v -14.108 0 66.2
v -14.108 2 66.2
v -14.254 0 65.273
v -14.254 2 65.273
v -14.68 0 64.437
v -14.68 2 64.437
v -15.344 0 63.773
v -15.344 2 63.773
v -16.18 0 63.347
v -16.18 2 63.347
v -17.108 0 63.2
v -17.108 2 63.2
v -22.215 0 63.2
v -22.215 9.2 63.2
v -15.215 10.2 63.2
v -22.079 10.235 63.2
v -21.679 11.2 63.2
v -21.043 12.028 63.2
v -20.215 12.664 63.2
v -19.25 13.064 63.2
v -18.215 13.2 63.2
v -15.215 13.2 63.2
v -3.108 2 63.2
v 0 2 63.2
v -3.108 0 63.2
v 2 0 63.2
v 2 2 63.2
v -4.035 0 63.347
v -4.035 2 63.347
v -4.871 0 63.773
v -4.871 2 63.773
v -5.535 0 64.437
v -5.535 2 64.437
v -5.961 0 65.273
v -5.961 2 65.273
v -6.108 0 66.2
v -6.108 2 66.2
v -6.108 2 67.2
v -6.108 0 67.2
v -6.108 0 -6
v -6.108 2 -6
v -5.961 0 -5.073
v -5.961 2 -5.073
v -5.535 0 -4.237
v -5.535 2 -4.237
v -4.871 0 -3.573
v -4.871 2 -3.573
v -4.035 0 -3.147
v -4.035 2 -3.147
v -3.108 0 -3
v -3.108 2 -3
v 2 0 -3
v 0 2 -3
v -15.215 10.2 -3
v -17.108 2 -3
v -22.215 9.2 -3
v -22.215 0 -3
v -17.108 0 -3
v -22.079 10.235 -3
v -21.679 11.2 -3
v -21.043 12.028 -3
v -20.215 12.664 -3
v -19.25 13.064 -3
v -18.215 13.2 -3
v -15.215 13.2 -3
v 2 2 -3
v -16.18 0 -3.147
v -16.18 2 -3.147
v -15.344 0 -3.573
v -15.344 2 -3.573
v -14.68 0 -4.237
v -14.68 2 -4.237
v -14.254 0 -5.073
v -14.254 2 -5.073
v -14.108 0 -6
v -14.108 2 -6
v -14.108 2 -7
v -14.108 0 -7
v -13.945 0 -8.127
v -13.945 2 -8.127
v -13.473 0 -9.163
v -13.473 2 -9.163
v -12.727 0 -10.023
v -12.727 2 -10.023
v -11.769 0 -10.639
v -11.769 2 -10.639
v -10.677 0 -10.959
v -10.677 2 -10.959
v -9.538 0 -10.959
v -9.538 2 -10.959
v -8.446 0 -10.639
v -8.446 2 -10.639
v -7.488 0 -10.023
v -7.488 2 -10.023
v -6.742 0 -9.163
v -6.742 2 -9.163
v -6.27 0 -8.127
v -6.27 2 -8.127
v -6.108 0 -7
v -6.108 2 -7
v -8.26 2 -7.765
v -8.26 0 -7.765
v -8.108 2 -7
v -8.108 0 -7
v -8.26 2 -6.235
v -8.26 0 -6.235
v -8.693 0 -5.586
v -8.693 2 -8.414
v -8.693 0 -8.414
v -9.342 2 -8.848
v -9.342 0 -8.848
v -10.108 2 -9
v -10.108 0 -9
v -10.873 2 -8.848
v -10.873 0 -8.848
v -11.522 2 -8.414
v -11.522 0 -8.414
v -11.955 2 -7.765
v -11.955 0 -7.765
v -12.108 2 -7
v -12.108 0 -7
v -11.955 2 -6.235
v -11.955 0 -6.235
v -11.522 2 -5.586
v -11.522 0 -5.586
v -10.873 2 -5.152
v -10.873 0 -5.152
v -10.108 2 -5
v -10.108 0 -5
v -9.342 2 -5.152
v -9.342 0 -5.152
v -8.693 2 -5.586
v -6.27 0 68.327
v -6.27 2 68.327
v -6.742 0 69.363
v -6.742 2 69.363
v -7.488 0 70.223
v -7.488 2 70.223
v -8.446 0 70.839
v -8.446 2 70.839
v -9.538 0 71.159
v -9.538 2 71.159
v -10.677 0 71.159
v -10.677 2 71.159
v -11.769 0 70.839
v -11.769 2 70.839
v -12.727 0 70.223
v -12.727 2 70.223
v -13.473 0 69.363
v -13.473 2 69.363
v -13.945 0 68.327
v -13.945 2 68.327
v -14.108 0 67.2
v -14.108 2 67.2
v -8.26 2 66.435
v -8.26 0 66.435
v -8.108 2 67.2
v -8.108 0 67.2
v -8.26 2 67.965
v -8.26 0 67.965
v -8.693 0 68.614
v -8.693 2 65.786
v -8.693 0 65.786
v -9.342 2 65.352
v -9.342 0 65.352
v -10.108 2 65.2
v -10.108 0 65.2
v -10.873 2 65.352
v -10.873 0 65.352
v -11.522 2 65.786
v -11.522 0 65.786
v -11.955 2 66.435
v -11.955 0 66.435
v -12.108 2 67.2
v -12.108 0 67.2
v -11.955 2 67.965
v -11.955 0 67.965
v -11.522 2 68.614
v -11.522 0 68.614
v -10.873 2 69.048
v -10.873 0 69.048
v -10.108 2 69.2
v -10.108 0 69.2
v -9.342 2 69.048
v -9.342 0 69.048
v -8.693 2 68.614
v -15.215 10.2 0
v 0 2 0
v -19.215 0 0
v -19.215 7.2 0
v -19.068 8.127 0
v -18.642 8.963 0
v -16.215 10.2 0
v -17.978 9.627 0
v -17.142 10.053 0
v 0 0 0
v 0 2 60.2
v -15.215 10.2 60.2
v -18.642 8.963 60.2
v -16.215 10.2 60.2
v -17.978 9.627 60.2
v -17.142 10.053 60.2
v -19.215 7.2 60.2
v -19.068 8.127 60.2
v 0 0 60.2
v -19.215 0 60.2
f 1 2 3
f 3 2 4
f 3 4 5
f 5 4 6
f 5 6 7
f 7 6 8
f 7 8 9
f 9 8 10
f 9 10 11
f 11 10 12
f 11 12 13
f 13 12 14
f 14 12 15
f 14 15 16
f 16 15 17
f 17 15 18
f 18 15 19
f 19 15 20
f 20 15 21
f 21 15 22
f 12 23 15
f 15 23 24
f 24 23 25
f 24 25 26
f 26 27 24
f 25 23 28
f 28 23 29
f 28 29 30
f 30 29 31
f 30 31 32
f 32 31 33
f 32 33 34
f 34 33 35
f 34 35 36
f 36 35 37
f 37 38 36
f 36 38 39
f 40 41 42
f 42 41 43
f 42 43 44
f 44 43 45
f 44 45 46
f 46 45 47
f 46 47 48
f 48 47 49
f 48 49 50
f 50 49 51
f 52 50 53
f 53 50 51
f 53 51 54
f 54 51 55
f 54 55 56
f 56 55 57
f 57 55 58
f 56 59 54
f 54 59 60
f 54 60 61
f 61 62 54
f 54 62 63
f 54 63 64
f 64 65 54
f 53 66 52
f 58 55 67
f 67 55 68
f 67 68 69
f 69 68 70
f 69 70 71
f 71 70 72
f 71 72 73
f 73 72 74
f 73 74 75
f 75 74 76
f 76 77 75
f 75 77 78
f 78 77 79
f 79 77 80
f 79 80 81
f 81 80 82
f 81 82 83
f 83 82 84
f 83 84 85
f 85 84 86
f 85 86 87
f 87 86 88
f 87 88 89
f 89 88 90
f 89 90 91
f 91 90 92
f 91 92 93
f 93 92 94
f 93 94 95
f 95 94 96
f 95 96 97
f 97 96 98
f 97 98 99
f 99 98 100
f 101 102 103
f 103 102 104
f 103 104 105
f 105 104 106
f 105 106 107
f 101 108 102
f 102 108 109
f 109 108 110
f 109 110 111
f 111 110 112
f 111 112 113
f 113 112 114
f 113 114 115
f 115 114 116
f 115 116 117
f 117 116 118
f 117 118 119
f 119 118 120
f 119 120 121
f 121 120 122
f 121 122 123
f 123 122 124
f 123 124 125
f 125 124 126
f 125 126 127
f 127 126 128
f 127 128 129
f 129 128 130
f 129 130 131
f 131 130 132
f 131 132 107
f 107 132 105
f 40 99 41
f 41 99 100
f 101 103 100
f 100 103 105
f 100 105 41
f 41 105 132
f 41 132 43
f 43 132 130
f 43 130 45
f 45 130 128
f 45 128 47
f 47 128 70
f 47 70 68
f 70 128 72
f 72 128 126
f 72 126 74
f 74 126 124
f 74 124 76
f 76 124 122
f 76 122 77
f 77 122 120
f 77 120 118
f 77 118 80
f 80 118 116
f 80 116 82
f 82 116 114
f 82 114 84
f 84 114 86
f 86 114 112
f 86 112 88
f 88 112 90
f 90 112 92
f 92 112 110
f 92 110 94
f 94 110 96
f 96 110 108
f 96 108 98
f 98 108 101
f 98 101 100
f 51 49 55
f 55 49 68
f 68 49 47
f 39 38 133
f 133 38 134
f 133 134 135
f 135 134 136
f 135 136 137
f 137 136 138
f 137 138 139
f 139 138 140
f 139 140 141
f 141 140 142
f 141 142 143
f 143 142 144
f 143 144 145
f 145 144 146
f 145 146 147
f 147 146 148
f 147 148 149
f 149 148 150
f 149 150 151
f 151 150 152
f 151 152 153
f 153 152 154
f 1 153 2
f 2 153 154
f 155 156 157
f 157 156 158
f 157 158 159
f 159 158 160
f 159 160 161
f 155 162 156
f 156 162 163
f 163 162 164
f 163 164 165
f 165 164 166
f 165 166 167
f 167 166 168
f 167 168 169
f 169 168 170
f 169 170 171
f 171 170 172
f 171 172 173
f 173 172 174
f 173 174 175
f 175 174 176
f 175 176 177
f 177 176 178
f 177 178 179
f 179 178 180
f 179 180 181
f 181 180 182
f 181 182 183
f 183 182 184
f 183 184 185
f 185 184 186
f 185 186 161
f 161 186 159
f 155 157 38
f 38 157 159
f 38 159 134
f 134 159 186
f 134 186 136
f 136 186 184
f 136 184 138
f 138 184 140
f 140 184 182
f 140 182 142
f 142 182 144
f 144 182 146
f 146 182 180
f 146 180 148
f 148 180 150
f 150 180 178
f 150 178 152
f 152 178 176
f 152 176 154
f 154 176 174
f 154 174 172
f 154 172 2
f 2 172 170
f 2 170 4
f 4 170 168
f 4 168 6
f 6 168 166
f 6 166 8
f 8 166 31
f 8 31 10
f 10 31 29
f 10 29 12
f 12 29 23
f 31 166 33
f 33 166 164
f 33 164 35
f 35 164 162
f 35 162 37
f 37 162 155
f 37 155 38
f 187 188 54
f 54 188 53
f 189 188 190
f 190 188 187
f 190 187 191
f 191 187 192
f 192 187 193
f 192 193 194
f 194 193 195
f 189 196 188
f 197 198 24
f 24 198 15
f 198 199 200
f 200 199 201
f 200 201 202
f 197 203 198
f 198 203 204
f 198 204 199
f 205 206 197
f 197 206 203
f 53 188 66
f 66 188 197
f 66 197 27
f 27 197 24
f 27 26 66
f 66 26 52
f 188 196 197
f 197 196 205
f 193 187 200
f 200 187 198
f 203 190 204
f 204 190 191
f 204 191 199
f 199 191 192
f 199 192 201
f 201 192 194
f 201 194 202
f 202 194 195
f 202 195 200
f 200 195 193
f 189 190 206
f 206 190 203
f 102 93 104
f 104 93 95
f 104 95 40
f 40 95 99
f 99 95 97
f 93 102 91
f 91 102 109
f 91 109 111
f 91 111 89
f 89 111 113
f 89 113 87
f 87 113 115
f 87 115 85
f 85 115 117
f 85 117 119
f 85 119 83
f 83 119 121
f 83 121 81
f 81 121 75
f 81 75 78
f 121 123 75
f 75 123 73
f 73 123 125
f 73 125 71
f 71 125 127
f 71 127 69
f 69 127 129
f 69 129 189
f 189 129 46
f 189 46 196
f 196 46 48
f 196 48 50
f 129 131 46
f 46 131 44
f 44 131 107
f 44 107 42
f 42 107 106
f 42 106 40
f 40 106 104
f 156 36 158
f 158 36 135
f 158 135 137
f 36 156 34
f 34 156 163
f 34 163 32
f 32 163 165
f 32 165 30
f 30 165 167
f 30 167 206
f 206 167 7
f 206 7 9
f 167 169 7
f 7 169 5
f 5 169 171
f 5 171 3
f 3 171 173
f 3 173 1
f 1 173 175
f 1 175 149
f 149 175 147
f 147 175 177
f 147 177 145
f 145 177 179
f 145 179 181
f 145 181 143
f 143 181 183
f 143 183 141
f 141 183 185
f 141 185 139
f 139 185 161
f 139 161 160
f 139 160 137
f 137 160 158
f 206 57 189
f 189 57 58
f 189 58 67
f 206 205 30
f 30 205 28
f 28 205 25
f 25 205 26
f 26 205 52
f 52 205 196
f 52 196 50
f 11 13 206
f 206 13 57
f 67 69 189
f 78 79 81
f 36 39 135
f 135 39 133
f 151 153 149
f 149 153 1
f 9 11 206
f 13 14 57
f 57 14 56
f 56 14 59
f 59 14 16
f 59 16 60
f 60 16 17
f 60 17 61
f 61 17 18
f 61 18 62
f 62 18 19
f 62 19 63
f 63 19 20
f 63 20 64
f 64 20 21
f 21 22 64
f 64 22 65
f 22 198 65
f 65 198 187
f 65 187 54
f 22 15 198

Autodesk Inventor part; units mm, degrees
ref_plane "YZ Plane" through (0, 0, 0) normal (1, 0, 0) x (0, 1, 0)
ref_plane "XZ Plane" through (0, 0, 0) normal (0, 1, 0) x (-1, 0, 0)
sketch "Sketch1" plane through (0, 0, 0) normal (0, 0, 1) x (1, 0, 0)
  line L0 (0, 0) -> (-19.215, 0)
  line L1 (-19.215, 0) -> (-19.215, 7.2)
  line L2 (-16.215, 10.2) -> (-15.215, 10.2)
  line L3 (0, 10.2) -> (0, 2)
  arc A0 (-16.215, 10.2) -> (-19.215, 7.2) centre (-16.215, 7.2) ccw
  line L4 (-15.215, 10.2) -> (-15.215, 2)
  line L5 (-15.215, 2) -> (0, 2)
  line L6 (-15.215, 10.2) -> (0, 10.2)
  line L7 (0, 2) -> (0, 0)
  line L8 (-15.215, 10.2) -> (-15.215, 13.2)
  line L9 (-22.215, 0) -> (-22.215, 9.2)
  line L10 (-18.215, 13.2) -> (-15.215, 13.2)
  arc A1 (-18.215, 13.2) -> (-22.215, 9.2) centre (-18.215, 9.2) ccw
  line L11 (-22.215, 0) -> (-19.215, 0)
  line L12 (0, 0) -> (2, 0)
  line L13 (2, 0) -> (2, 2)
  line L14 (2, 2) -> (0, 2)
  line L15 (0, 2) -> (0, 0)
  dimension "d0" = 3
  dimension "d1" = 19.215
  dimension "d2" = 10.2
  dimension "d3" = 4
  dimension "d4" = 2
  dimension "d5" = 3
  dimension "d6" = 3
  dimension "d7" = 4
  dimension "d10" = 2
  dimension "d11" = 2
extrude "Extrusion1" add sketch "Sketch1" along normal blind 60.2 contours L7 L14 L13 L12 | L11 L9 A1 L10 L8 L2 A0 L1
sketch "Sketch2" plane through (0, 0, 60.2) normal (0, 0, 1) x (1, 0, 0)
  line L0 (-15.215, 10.2) -> (-15.215, 13.2) projected
  line L1 (-15.215, 13.2) -> (-18.215, 13.2) projected
  arc A0 (-18.215, 13.2) -> (-22.215, 9.2) centre (-18.215, 9.2) ccw projected
  line L2 (-22.215, 9.2) -> (-22.215, 0) projected
  line L3 (-22.215, 0) -> (-19.215, 0) projected
  line L4 (-19.215, 0) -> (-19.215, 7.2) projected
  arc A1 (-16.215, 10.2) -> (-19.215, 7.2) centre (-16.215, 7.2) ccw projected
  line L5 (-16.215, 10.2) -> (-15.215, 10.2) projected
  line L6 (0, 2) -> (0, 0) projected
  line L7 (0, 0) -> (2, 0) projected
  line L8 (2, 0) -> (2, 2) projected
  line L9 (2, 2) -> (0, 2) projected
  line L10 (0, 2) -> (-19.215, 2)
  line L11 (-19.215, 0) -> (0, 0)
  line L12 (-15.215, 10.2) -> (0, 2)
extrude "Extrusion2" add sketch "Sketch2" along normal blind 3
sketch "Sketch3" plane through (0, 0, 0) normal (0, 0, -1) x (-1, 0, 0)
  line L0 (0, 2) -> (0, 0) projected
  line L1 (-2, 2) -> (0, 2) projected
  line L2 (-2, 0) -> (-2, 2) projected
  line L3 (0, 0) -> (-2, 0) projected
  line L4 (19.215, 0) -> (19.215, 7.2) projected
  line L5 (0, 2) -> (0, 0) projected
  line L6 (19.215, 0) -> (0, 0) projected
  line L7 (15.215, 10.2) -> (15.215, 13.2) projected
  line L8 (16.215, 10.2) -> (15.215, 10.2) projected
  arc A0 (19.215, 7.2) -> (16.215, 10.2) centre (16.215, 7.2) ccw projected
  line L9 (19.215, 0) -> (19.215, 7.2) projected
  line L10 (22.215, 0) -> (19.215, 0) projected
  line L11 (22.215, 9.2) -> (22.215, 0) projected
  arc A1 (22.215, 9.2) -> (18.215, 13.2) centre (18.215, 9.2) ccw projected
  line L12 (15.215, 13.2) -> (18.215, 13.2) projected
  line L13 (16.215, 10.2) -> (15.215, 10.2) projected
  line L14 (0, 2) -> (15.215, 10.2) projected
  arc A2 (19.215, 7.2) -> (16.215, 10.2) centre (16.215, 7.2) ccw projected
extrude "Extrusion3" add sketch "Sketch3" along normal blind 3
sketch "Sketch4" plane through (-22.215, 0, 63.2) normal (0, -1, 0) x (1, 0, 0)
  circle A0 centre (12.1075, 4) radius 2
  line L0 (3, -63.2) -> (3, -3) projected
  line L1 (3, -3) -> (22.215, -3) projected
  line L2 (22.215, -63.2) -> (22.215, -3) projected
  line L3 (22.215, -63.2) -> (3, -63.2) projected
  line L4 (0, -66.2) -> (0, 0) projected
  line L5 (24.215, -66.2) -> (0, -66.2) projected
  line L6 (24.215, -66.2) -> (24.215, 0) projected
  line L7 (0, 0) -> (24.215, 0) projected
  line L8 (12.1075, 0) -> (12.1075, 4) construction
  arc A1 (12.1075, 0) -> (16.1075, 4) centre (12.1075, 4) ccw construction
  line L9 (8.1075, 4) -> (8.1075, 0)
  line L10 (16.1075, 4) -> (16.1075, 0)
  arc A2 (8.1075, 4) -> (12.1075, 0) centre (12.1075, 4) ccw construction
  arc A3 (16.1075, 4) -> (8.1075, 4) centre (12.1075, 4) ccw
  dimension "d16" = 4
  dimension "d17" = 4
extrude "Extrusion4" add sketch "Sketch4" against normal up to surface (2 mm away) contours L9 A3 L10 L7
ref_plane "Work Plane1" through (0, 0, 30.1) normal (0, 0, -1) x (-1, 0, 0)
mirror "Mirror1" about plane through (0, 0, 30.1) normal (0, 0, -1) of "Extrusion4"
fillet "Fillet1" radius 3 4 edges at (-14.1075, 1, -3) (-6.1075, 1, -3) (-6.1075, 1, 63.2) (-14.1075, 1, 63.2)
properties part number "Clamp_Holder"
